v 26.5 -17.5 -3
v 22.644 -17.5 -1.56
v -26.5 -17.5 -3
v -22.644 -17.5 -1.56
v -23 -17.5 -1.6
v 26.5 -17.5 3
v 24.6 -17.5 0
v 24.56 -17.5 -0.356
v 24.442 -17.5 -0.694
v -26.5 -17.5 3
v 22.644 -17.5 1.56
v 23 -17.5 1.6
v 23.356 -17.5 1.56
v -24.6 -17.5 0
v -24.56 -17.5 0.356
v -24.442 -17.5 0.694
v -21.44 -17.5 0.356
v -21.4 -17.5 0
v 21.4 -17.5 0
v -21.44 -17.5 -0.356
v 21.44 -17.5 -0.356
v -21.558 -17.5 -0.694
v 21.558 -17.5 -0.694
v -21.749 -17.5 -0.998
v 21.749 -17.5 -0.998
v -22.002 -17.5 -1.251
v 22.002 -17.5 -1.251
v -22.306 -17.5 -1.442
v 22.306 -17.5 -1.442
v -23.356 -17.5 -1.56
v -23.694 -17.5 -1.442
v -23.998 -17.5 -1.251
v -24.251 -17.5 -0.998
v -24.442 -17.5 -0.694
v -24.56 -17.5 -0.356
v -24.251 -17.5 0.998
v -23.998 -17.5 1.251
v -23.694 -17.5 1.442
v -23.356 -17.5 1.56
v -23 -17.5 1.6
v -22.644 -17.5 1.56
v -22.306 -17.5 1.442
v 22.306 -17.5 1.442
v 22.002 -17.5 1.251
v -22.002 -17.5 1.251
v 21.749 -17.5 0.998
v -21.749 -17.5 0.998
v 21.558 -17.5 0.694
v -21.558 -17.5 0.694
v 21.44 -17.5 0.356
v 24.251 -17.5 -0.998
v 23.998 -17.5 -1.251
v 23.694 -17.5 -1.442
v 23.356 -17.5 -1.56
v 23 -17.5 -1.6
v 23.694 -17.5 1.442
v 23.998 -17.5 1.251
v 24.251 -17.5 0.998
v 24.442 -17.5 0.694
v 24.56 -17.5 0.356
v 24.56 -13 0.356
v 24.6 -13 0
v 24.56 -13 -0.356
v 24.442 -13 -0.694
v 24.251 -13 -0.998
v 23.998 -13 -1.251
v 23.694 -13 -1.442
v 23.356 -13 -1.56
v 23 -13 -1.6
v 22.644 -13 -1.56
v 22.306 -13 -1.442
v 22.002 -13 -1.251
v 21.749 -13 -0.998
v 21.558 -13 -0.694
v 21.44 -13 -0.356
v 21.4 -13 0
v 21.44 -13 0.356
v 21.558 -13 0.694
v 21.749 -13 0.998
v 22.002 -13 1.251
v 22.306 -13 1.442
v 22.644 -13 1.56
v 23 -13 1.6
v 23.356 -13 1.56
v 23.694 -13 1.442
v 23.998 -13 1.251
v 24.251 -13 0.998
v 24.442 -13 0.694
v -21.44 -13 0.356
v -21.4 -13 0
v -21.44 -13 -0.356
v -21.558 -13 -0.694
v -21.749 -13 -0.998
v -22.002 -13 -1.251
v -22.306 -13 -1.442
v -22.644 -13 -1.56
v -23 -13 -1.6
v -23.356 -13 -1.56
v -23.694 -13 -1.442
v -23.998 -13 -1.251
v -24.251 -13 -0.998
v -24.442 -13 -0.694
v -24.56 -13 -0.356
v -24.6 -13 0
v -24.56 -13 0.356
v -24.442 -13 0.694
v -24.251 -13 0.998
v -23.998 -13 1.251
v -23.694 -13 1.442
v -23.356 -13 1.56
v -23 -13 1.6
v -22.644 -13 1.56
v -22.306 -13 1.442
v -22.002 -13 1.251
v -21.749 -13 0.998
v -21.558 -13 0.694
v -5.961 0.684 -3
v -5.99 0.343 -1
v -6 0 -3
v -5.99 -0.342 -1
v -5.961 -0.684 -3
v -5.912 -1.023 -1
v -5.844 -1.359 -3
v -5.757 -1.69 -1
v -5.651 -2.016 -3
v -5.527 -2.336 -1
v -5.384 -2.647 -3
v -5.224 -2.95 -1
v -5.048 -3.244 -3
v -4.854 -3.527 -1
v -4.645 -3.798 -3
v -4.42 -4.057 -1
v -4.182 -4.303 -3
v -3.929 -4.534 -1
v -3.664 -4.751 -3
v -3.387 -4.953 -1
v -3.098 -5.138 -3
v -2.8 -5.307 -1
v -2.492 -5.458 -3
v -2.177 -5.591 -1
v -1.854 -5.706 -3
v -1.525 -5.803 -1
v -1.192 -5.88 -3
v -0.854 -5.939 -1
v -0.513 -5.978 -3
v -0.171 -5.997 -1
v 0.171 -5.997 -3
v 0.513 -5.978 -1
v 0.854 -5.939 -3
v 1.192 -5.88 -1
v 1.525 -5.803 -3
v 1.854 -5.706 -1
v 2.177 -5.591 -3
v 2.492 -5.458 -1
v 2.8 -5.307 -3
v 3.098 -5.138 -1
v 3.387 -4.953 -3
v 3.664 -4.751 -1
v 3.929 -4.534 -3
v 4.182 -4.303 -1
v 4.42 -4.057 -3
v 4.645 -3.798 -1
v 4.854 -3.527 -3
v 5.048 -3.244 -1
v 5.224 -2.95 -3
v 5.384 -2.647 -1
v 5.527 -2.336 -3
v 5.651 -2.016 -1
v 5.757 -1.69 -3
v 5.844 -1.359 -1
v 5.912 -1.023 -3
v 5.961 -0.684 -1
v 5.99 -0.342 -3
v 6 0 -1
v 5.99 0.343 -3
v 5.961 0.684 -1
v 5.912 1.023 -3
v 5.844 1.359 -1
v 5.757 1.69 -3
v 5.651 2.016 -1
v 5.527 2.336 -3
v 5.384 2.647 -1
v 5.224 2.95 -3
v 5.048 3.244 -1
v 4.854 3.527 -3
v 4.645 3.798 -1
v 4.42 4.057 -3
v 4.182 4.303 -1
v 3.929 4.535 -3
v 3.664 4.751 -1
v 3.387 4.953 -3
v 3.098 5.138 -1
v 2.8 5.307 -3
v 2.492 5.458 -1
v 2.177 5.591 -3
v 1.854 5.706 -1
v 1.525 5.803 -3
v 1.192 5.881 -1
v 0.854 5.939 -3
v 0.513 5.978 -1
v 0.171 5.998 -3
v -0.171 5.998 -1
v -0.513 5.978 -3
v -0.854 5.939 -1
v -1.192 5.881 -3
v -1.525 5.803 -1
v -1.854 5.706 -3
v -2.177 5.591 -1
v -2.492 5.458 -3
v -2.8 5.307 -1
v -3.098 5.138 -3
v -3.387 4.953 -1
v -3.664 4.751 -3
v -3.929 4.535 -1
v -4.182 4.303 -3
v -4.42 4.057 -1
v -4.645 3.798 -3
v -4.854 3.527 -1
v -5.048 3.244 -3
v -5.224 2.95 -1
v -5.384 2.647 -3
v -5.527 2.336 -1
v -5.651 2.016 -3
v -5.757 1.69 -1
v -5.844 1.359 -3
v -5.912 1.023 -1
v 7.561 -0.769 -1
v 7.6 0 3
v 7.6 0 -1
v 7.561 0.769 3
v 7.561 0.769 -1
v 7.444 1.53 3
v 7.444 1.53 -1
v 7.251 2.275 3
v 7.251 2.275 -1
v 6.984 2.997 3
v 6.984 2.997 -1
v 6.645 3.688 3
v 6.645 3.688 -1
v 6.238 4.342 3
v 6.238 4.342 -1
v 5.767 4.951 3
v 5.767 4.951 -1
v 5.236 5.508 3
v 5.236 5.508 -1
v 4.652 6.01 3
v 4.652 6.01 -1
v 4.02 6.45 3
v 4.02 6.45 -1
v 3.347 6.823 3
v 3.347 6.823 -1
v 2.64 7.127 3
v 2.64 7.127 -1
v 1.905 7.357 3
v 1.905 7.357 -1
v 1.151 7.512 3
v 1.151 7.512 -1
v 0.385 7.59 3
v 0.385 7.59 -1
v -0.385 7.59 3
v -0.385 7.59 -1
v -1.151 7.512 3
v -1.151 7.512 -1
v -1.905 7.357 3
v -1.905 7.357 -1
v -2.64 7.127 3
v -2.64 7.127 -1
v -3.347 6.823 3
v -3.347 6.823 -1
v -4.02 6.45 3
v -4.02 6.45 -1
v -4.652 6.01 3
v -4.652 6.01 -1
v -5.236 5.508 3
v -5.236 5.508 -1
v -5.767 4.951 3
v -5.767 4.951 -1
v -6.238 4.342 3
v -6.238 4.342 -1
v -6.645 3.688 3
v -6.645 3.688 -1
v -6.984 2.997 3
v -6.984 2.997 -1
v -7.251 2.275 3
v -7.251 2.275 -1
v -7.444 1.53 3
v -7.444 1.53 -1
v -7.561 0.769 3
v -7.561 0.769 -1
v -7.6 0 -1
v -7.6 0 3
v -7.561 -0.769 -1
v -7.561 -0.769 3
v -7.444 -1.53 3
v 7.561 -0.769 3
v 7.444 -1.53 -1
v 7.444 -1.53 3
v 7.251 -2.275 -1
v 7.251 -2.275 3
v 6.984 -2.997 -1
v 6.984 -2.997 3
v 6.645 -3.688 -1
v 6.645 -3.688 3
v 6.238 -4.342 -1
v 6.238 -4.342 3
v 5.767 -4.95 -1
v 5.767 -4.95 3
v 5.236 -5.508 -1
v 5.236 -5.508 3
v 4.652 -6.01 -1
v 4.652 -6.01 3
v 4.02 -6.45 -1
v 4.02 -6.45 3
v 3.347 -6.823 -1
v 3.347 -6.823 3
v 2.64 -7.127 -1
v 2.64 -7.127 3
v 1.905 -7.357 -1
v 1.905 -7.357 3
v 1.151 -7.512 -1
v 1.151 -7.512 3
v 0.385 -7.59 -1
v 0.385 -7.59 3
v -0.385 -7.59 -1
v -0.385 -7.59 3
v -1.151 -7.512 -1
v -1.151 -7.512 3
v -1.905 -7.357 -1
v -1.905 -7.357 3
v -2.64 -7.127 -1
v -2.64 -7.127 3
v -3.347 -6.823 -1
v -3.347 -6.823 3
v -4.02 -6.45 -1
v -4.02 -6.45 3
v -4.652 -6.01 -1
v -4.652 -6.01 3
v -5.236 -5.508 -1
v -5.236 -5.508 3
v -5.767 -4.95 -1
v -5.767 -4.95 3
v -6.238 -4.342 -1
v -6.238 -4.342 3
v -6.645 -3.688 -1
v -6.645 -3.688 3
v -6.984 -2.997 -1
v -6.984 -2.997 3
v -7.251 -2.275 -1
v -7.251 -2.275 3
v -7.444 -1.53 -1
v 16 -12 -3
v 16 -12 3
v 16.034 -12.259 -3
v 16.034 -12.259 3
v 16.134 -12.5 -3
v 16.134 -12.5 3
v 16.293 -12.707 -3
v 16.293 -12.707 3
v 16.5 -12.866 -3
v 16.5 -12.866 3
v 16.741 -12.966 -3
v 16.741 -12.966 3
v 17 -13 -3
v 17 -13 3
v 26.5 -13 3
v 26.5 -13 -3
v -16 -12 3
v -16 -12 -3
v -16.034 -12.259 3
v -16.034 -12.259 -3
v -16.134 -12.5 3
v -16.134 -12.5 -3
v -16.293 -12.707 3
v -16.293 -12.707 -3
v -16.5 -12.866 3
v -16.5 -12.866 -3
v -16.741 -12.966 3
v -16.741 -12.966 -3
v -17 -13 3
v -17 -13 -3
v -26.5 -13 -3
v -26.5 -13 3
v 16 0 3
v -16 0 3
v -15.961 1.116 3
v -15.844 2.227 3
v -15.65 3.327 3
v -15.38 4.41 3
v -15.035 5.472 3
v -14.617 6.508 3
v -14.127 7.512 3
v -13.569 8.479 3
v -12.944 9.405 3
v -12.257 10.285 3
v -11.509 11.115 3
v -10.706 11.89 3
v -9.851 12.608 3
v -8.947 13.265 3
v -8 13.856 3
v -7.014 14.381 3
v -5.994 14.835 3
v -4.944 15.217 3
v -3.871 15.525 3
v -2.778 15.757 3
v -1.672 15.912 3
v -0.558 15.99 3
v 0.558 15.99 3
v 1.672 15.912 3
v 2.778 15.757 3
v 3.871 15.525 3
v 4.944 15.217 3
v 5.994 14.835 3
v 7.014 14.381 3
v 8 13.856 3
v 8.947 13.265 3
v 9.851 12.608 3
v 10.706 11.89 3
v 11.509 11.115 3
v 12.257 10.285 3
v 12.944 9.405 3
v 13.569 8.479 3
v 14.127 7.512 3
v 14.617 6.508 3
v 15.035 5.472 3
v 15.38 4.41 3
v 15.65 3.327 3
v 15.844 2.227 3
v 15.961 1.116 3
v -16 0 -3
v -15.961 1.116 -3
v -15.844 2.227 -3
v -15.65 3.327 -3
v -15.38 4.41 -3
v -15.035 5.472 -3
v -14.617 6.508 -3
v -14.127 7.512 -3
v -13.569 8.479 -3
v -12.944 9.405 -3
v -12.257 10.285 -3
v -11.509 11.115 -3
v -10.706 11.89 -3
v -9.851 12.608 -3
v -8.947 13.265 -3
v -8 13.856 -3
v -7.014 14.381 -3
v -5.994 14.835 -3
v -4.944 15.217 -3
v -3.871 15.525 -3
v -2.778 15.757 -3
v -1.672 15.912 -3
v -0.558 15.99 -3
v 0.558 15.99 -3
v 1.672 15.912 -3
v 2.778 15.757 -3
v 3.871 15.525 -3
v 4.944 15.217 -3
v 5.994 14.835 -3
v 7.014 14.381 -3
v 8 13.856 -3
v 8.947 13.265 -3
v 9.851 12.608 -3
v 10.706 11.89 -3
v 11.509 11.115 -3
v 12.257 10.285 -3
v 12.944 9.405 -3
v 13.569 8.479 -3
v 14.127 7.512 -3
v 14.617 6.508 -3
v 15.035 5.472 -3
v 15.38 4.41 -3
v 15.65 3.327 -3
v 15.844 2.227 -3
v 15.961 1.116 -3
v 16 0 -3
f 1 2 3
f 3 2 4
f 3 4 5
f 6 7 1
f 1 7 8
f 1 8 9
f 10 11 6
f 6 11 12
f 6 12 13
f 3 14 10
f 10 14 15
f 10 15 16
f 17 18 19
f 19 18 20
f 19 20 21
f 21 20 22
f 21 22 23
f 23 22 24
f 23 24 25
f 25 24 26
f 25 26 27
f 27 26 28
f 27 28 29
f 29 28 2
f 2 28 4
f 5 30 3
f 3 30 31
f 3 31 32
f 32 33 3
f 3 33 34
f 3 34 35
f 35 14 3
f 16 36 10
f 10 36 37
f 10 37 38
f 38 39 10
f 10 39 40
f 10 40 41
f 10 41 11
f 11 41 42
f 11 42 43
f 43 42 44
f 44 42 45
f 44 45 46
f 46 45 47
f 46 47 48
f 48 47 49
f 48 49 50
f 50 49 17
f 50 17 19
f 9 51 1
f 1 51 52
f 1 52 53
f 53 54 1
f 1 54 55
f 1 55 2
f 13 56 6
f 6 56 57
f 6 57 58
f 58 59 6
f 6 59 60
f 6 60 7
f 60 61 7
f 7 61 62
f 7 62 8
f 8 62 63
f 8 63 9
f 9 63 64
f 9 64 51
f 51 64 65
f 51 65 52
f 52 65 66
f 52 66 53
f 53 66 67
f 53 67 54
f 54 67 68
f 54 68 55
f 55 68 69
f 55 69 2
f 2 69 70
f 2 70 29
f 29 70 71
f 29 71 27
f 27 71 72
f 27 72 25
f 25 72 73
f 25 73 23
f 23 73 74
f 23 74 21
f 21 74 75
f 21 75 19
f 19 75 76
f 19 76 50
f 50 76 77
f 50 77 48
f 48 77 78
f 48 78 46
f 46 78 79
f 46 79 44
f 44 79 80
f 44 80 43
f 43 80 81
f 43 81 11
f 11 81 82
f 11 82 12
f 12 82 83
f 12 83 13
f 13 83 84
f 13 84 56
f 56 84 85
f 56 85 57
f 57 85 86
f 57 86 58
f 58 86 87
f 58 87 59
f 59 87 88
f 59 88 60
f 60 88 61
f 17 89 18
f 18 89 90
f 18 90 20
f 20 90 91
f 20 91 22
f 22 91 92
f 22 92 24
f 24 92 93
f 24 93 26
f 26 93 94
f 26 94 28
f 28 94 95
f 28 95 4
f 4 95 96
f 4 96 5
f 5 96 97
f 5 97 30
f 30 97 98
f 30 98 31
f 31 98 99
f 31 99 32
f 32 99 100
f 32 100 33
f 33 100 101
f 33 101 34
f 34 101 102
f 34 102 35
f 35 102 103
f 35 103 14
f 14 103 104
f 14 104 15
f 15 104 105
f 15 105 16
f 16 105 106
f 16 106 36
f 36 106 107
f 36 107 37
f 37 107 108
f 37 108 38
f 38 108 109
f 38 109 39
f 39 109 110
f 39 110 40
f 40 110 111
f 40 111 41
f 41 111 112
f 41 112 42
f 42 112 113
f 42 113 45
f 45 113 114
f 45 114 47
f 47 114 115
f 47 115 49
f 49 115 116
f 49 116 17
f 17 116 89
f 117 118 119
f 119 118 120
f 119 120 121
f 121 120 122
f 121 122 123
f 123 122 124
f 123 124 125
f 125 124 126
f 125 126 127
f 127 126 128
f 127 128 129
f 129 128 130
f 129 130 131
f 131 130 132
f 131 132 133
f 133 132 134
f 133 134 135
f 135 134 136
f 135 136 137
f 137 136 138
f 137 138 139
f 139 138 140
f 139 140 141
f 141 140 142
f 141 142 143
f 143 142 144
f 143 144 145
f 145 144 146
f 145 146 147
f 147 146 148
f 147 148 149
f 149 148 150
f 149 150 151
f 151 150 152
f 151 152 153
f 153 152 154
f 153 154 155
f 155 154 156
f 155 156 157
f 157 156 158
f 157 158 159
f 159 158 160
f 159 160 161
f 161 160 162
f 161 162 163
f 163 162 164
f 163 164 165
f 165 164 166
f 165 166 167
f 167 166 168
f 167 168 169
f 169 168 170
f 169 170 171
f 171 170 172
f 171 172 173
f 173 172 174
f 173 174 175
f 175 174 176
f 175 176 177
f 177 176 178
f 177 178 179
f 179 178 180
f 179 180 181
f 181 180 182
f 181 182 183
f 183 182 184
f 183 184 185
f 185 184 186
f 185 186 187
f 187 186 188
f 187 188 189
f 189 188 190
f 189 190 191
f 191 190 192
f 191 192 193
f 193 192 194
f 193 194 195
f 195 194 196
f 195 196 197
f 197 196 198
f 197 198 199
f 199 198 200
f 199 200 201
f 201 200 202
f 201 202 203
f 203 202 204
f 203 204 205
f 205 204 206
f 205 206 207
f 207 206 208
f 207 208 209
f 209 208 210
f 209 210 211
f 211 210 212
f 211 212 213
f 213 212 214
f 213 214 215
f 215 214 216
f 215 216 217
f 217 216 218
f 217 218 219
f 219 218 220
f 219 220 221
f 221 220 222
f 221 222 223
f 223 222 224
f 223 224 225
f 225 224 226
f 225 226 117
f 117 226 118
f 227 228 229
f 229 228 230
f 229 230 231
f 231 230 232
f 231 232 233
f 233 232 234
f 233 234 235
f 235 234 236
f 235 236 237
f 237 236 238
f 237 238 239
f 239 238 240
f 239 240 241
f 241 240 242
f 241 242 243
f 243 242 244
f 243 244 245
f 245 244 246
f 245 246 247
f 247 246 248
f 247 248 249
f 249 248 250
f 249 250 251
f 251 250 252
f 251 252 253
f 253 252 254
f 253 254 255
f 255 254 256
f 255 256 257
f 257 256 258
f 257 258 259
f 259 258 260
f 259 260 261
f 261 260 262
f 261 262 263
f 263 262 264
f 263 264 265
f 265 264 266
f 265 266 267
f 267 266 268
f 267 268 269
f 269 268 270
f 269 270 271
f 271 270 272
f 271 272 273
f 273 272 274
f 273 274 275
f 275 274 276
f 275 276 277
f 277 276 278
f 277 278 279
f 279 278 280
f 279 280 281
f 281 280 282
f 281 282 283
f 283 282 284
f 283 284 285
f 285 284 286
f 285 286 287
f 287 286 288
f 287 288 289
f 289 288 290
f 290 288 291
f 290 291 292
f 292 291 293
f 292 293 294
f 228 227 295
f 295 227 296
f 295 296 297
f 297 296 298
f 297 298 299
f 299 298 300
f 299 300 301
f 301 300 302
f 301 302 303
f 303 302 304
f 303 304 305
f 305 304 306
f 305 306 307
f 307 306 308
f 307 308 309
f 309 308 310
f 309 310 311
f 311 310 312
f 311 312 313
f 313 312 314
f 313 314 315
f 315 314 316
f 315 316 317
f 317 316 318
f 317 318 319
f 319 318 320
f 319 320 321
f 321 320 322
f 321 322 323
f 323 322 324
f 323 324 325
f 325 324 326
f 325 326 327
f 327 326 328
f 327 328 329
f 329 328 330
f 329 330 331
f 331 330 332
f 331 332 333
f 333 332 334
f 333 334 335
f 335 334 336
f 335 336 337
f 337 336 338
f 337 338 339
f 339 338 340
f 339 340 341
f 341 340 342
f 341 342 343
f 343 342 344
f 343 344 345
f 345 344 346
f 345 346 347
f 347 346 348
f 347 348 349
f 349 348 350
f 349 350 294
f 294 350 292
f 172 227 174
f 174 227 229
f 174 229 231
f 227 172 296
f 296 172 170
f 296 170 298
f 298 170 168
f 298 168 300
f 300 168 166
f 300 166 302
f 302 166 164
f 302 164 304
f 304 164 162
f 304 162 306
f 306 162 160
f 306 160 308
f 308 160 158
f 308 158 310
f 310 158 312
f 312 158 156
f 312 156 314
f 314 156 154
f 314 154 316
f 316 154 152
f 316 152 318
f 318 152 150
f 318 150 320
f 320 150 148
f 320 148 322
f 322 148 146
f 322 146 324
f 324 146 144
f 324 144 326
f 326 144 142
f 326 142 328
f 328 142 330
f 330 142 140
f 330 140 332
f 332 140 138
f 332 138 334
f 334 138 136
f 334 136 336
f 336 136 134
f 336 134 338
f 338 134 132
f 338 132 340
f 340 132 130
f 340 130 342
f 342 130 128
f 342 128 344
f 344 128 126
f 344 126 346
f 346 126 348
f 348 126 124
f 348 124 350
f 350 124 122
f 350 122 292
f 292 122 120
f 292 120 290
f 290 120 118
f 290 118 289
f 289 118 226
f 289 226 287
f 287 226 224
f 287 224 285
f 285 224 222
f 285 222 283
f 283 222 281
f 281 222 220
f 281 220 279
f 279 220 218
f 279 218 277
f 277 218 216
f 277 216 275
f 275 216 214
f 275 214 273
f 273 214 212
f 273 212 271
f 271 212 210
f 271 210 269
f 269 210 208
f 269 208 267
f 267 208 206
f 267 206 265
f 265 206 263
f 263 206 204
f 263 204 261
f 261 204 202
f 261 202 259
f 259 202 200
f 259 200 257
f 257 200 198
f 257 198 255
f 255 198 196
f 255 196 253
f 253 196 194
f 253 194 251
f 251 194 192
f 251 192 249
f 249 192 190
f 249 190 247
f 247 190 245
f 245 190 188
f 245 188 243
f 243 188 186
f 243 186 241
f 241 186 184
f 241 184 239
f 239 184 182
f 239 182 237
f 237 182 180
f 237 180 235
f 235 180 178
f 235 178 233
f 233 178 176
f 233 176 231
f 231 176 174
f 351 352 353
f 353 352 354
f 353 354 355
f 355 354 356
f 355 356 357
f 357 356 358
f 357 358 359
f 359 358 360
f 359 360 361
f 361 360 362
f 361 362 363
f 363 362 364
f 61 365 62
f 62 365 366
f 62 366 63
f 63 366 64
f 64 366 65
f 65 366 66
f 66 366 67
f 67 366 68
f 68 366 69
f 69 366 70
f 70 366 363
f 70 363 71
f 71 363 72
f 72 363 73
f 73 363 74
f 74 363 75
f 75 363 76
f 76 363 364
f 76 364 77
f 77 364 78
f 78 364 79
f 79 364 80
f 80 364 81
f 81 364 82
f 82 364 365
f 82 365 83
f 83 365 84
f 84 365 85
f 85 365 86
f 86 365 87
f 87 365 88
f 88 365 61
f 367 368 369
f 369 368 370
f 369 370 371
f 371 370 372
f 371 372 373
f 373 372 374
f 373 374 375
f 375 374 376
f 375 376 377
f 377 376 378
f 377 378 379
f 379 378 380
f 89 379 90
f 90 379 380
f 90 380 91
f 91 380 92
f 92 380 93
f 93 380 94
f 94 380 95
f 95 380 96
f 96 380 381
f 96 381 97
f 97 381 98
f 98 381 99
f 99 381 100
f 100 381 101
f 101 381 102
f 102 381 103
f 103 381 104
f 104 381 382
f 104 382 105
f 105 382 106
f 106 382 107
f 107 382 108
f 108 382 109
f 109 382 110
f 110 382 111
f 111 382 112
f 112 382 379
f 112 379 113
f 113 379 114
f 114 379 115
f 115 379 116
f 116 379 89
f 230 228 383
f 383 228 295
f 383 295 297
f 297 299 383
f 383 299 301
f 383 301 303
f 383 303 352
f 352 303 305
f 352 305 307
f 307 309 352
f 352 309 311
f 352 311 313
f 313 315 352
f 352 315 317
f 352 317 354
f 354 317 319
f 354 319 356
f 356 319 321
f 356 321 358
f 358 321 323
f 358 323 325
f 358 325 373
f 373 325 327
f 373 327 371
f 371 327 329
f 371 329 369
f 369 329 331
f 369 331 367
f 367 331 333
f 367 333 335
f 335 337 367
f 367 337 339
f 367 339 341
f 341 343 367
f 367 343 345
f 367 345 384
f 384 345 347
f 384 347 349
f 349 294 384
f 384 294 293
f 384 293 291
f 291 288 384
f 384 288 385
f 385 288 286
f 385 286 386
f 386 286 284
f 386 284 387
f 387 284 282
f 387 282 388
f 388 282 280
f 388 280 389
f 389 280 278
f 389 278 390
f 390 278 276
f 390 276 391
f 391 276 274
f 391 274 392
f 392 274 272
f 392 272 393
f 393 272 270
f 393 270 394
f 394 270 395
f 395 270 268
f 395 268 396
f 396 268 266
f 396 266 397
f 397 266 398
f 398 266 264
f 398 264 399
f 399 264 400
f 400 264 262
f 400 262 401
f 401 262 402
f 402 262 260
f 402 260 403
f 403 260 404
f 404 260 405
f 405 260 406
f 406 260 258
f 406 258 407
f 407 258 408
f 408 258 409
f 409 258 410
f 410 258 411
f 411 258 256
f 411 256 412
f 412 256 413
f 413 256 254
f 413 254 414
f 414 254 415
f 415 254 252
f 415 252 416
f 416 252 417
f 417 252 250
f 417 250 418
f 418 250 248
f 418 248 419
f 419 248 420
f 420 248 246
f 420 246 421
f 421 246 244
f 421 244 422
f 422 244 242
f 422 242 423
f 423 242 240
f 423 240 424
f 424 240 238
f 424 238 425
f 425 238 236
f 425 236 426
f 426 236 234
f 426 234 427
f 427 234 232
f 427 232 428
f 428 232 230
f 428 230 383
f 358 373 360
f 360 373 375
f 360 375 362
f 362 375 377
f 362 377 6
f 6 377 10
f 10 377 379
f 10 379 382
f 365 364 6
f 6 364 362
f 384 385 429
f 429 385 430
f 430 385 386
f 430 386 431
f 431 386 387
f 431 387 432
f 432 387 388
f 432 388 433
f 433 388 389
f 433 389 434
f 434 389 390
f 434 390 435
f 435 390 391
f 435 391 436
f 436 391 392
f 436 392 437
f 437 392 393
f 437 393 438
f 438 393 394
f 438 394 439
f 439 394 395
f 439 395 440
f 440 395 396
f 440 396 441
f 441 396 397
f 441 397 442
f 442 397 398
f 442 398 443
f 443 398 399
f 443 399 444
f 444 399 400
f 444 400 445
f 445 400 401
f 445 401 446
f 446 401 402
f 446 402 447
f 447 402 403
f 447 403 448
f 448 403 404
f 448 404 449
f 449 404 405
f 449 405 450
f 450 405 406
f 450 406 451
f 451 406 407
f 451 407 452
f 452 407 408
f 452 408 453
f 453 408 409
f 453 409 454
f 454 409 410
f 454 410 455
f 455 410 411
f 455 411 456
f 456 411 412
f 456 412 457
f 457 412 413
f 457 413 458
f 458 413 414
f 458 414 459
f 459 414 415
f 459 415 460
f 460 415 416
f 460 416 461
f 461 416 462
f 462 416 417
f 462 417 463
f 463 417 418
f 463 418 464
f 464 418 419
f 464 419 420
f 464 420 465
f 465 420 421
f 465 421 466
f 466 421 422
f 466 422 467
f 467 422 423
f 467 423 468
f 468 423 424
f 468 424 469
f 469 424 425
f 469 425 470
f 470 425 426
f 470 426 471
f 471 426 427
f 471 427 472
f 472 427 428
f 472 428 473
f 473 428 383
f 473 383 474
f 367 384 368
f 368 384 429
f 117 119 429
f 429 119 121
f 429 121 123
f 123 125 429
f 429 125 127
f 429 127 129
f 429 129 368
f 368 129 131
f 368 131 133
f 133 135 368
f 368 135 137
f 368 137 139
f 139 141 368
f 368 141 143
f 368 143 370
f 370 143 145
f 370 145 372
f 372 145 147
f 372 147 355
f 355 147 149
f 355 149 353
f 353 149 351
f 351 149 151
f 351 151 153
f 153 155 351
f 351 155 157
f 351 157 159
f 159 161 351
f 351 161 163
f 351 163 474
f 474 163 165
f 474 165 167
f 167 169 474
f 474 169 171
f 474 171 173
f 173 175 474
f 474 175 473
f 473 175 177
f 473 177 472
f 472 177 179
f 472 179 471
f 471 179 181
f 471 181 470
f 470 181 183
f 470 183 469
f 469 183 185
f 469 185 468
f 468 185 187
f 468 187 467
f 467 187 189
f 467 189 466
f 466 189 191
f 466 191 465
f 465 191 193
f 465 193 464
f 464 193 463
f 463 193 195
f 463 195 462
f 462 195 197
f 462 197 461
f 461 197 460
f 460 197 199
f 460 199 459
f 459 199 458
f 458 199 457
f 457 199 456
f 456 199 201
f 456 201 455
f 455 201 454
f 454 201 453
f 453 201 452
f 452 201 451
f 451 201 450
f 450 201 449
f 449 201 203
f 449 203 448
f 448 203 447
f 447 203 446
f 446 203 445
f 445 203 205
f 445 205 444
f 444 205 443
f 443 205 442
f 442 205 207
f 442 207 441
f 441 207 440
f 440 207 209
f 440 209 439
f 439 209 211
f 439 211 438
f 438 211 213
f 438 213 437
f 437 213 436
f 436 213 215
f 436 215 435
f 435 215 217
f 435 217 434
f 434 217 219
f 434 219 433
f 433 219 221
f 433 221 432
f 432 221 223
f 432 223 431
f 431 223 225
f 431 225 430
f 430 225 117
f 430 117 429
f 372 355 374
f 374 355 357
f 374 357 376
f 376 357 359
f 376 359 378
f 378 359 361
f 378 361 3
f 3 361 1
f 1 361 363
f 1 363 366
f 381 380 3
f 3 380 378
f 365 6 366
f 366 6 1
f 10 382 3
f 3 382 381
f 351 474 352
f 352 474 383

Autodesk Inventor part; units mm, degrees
ref_plane "YZ Plane" through (0, 0, 0) normal (1, 0, 0) x (0, 1, 0)
ref_plane "XZ Plane" through (0, 0, 0) normal (0, 1, 0) x (-1, 0, 0)
ref_plane "XY Plane" through (0, 0, 0) normal (0, 0, 1) x (1, 0, 0)
sketch "Skizze1" plane through (0, 0, 0) normal (0, 0, 1) x (1, 0, 0)
  line L0 (-16, 16) -> (16, 16)
  line L1 (16, 16) -> (16, -16)
  line L2 (16, -16) -> (-16, -16)
  line L3 (-16, -16) -> (-16, 16)
  line L4 (0, 22.4) -> (0, -22.4) projected
  line L5 (-22.4, 0) -> (22.4, 0) projected
  point P0 (0, 0)
  dimension "d0" = 32
  dimension "d1" = 32
extrude "Extrusion1" add sketch "Skizze1" along normal mid plane 6
sketch "Skizze2" plane through (0, 0, 0) normal (0, 0, 1) x (1, 0, 0)
  line L0 (-16, 16) -> (-16, -16) projected
  line L1 (-16, -16) -> (-26.5, -16)
  line L2 (-26.5, -16) -> (-26.5, -13)
  line L3 (-26.5, -13) -> (-16, -13)
  line L4 (-16, -13) -> (-16, -16)
  line L5 (0, 22.4) -> (0, -22.4) projected
  line L6 (16, -16) -> (26.5, -16)
  line L7 (26.5, -16) -> (26.5, -13)
  line L8 (26.5, -13) -> (16, -13)
  line L9 (16, -13) -> (16, -16)
  point P0 (0, 0)
  dimension "d6" = 10.5
  dimension "d7" = 3
extrude "Extrusion2" add sketch "Skizze2" along normal mid plane 6
fillet "Rundung1" radius 16 2 edges at (-16, 16, 0) (16, 16, 0)
fillet "Rundung2" radius 1 2 edges at (-16, -13, 0) (16, -13, 0)
sketch "Skizze3" plane through (0, 0, 3) normal (0, 0, 1) x (1, 0, 0)
  circle A0 centre (0, 0) radius 7.6
  dimension "d12" = 15.2
extrude "Extrusion3" cut sketch "Skizze3" against normal blind 4
sketch "Skizze4" plane through (0, 0, -1) normal (0, 0, 1) x (1, 0, 0)
  circle A0 centre (0, 0) radius 6
  dimension "d15" = 12
extrude "Extrusion4" cut sketch "Skizze4" against normal up to surface (2 mm away)
sketch "Skizze5" plane through (-26.5, -13, 3) normal (0, 1, 0) x (1, 0, 0)
  circle A0 centre (3.5, 3) radius 1.6
  circle A1 centre (49.5, 3) radius 1.6
  line L0 (0, 6) -> (9.5, 6) projected
  line L1 (0, 6) -> (0, 0) projected
  line L2 (53, 6) -> (53, 0) projected
  line L3 (43.5, 6) -> (53, 6) projected
  point P0 (26.5, 3)
  dimension "d18" = 3.2
  dimension "d19" = 3.2
  dimension "d20" = 3
  dimension "d21" = 3.5
  dimension "d22" = 3.5
  dimension "d23" = 3
extrude "Extrusion5" cut sketch "Skizze5" against normal up to surface (3 mm away)
sketch "Skizze6" plane through (-26.5, -16, 3) normal (0, -1, 0) x (1, 0, 0)
  line L0 (9.5, 0) -> (0, 0) projected
  line L1 (53, 0) -> (53, -6) projected
  line L2 (0, 0) -> (53, 0)
  line L3 (53, 0) -> (53, -6)
  line L4 (53, -6) -> (0, -6)
  line L5 (0, -6) -> (0, 0)
  circle A0 centre (3.5, -3) radius 1.6 projected
  circle A1 centre (3.5, -3) radius 1.6
  circle A2 centre (49.5, -3) radius 1.6 projected
  circle A3 centre (49.5, -3) radius 1.6
  point P0 (26.5, -3)
  point P1 (9.5, 0)
  dimension "d26" = 3.2
  dimension "d27" = 3.2
extrude "Extrusion6" add sketch "Skizze6" along normal blind 1.5
properties part number "_3D-Druck"
